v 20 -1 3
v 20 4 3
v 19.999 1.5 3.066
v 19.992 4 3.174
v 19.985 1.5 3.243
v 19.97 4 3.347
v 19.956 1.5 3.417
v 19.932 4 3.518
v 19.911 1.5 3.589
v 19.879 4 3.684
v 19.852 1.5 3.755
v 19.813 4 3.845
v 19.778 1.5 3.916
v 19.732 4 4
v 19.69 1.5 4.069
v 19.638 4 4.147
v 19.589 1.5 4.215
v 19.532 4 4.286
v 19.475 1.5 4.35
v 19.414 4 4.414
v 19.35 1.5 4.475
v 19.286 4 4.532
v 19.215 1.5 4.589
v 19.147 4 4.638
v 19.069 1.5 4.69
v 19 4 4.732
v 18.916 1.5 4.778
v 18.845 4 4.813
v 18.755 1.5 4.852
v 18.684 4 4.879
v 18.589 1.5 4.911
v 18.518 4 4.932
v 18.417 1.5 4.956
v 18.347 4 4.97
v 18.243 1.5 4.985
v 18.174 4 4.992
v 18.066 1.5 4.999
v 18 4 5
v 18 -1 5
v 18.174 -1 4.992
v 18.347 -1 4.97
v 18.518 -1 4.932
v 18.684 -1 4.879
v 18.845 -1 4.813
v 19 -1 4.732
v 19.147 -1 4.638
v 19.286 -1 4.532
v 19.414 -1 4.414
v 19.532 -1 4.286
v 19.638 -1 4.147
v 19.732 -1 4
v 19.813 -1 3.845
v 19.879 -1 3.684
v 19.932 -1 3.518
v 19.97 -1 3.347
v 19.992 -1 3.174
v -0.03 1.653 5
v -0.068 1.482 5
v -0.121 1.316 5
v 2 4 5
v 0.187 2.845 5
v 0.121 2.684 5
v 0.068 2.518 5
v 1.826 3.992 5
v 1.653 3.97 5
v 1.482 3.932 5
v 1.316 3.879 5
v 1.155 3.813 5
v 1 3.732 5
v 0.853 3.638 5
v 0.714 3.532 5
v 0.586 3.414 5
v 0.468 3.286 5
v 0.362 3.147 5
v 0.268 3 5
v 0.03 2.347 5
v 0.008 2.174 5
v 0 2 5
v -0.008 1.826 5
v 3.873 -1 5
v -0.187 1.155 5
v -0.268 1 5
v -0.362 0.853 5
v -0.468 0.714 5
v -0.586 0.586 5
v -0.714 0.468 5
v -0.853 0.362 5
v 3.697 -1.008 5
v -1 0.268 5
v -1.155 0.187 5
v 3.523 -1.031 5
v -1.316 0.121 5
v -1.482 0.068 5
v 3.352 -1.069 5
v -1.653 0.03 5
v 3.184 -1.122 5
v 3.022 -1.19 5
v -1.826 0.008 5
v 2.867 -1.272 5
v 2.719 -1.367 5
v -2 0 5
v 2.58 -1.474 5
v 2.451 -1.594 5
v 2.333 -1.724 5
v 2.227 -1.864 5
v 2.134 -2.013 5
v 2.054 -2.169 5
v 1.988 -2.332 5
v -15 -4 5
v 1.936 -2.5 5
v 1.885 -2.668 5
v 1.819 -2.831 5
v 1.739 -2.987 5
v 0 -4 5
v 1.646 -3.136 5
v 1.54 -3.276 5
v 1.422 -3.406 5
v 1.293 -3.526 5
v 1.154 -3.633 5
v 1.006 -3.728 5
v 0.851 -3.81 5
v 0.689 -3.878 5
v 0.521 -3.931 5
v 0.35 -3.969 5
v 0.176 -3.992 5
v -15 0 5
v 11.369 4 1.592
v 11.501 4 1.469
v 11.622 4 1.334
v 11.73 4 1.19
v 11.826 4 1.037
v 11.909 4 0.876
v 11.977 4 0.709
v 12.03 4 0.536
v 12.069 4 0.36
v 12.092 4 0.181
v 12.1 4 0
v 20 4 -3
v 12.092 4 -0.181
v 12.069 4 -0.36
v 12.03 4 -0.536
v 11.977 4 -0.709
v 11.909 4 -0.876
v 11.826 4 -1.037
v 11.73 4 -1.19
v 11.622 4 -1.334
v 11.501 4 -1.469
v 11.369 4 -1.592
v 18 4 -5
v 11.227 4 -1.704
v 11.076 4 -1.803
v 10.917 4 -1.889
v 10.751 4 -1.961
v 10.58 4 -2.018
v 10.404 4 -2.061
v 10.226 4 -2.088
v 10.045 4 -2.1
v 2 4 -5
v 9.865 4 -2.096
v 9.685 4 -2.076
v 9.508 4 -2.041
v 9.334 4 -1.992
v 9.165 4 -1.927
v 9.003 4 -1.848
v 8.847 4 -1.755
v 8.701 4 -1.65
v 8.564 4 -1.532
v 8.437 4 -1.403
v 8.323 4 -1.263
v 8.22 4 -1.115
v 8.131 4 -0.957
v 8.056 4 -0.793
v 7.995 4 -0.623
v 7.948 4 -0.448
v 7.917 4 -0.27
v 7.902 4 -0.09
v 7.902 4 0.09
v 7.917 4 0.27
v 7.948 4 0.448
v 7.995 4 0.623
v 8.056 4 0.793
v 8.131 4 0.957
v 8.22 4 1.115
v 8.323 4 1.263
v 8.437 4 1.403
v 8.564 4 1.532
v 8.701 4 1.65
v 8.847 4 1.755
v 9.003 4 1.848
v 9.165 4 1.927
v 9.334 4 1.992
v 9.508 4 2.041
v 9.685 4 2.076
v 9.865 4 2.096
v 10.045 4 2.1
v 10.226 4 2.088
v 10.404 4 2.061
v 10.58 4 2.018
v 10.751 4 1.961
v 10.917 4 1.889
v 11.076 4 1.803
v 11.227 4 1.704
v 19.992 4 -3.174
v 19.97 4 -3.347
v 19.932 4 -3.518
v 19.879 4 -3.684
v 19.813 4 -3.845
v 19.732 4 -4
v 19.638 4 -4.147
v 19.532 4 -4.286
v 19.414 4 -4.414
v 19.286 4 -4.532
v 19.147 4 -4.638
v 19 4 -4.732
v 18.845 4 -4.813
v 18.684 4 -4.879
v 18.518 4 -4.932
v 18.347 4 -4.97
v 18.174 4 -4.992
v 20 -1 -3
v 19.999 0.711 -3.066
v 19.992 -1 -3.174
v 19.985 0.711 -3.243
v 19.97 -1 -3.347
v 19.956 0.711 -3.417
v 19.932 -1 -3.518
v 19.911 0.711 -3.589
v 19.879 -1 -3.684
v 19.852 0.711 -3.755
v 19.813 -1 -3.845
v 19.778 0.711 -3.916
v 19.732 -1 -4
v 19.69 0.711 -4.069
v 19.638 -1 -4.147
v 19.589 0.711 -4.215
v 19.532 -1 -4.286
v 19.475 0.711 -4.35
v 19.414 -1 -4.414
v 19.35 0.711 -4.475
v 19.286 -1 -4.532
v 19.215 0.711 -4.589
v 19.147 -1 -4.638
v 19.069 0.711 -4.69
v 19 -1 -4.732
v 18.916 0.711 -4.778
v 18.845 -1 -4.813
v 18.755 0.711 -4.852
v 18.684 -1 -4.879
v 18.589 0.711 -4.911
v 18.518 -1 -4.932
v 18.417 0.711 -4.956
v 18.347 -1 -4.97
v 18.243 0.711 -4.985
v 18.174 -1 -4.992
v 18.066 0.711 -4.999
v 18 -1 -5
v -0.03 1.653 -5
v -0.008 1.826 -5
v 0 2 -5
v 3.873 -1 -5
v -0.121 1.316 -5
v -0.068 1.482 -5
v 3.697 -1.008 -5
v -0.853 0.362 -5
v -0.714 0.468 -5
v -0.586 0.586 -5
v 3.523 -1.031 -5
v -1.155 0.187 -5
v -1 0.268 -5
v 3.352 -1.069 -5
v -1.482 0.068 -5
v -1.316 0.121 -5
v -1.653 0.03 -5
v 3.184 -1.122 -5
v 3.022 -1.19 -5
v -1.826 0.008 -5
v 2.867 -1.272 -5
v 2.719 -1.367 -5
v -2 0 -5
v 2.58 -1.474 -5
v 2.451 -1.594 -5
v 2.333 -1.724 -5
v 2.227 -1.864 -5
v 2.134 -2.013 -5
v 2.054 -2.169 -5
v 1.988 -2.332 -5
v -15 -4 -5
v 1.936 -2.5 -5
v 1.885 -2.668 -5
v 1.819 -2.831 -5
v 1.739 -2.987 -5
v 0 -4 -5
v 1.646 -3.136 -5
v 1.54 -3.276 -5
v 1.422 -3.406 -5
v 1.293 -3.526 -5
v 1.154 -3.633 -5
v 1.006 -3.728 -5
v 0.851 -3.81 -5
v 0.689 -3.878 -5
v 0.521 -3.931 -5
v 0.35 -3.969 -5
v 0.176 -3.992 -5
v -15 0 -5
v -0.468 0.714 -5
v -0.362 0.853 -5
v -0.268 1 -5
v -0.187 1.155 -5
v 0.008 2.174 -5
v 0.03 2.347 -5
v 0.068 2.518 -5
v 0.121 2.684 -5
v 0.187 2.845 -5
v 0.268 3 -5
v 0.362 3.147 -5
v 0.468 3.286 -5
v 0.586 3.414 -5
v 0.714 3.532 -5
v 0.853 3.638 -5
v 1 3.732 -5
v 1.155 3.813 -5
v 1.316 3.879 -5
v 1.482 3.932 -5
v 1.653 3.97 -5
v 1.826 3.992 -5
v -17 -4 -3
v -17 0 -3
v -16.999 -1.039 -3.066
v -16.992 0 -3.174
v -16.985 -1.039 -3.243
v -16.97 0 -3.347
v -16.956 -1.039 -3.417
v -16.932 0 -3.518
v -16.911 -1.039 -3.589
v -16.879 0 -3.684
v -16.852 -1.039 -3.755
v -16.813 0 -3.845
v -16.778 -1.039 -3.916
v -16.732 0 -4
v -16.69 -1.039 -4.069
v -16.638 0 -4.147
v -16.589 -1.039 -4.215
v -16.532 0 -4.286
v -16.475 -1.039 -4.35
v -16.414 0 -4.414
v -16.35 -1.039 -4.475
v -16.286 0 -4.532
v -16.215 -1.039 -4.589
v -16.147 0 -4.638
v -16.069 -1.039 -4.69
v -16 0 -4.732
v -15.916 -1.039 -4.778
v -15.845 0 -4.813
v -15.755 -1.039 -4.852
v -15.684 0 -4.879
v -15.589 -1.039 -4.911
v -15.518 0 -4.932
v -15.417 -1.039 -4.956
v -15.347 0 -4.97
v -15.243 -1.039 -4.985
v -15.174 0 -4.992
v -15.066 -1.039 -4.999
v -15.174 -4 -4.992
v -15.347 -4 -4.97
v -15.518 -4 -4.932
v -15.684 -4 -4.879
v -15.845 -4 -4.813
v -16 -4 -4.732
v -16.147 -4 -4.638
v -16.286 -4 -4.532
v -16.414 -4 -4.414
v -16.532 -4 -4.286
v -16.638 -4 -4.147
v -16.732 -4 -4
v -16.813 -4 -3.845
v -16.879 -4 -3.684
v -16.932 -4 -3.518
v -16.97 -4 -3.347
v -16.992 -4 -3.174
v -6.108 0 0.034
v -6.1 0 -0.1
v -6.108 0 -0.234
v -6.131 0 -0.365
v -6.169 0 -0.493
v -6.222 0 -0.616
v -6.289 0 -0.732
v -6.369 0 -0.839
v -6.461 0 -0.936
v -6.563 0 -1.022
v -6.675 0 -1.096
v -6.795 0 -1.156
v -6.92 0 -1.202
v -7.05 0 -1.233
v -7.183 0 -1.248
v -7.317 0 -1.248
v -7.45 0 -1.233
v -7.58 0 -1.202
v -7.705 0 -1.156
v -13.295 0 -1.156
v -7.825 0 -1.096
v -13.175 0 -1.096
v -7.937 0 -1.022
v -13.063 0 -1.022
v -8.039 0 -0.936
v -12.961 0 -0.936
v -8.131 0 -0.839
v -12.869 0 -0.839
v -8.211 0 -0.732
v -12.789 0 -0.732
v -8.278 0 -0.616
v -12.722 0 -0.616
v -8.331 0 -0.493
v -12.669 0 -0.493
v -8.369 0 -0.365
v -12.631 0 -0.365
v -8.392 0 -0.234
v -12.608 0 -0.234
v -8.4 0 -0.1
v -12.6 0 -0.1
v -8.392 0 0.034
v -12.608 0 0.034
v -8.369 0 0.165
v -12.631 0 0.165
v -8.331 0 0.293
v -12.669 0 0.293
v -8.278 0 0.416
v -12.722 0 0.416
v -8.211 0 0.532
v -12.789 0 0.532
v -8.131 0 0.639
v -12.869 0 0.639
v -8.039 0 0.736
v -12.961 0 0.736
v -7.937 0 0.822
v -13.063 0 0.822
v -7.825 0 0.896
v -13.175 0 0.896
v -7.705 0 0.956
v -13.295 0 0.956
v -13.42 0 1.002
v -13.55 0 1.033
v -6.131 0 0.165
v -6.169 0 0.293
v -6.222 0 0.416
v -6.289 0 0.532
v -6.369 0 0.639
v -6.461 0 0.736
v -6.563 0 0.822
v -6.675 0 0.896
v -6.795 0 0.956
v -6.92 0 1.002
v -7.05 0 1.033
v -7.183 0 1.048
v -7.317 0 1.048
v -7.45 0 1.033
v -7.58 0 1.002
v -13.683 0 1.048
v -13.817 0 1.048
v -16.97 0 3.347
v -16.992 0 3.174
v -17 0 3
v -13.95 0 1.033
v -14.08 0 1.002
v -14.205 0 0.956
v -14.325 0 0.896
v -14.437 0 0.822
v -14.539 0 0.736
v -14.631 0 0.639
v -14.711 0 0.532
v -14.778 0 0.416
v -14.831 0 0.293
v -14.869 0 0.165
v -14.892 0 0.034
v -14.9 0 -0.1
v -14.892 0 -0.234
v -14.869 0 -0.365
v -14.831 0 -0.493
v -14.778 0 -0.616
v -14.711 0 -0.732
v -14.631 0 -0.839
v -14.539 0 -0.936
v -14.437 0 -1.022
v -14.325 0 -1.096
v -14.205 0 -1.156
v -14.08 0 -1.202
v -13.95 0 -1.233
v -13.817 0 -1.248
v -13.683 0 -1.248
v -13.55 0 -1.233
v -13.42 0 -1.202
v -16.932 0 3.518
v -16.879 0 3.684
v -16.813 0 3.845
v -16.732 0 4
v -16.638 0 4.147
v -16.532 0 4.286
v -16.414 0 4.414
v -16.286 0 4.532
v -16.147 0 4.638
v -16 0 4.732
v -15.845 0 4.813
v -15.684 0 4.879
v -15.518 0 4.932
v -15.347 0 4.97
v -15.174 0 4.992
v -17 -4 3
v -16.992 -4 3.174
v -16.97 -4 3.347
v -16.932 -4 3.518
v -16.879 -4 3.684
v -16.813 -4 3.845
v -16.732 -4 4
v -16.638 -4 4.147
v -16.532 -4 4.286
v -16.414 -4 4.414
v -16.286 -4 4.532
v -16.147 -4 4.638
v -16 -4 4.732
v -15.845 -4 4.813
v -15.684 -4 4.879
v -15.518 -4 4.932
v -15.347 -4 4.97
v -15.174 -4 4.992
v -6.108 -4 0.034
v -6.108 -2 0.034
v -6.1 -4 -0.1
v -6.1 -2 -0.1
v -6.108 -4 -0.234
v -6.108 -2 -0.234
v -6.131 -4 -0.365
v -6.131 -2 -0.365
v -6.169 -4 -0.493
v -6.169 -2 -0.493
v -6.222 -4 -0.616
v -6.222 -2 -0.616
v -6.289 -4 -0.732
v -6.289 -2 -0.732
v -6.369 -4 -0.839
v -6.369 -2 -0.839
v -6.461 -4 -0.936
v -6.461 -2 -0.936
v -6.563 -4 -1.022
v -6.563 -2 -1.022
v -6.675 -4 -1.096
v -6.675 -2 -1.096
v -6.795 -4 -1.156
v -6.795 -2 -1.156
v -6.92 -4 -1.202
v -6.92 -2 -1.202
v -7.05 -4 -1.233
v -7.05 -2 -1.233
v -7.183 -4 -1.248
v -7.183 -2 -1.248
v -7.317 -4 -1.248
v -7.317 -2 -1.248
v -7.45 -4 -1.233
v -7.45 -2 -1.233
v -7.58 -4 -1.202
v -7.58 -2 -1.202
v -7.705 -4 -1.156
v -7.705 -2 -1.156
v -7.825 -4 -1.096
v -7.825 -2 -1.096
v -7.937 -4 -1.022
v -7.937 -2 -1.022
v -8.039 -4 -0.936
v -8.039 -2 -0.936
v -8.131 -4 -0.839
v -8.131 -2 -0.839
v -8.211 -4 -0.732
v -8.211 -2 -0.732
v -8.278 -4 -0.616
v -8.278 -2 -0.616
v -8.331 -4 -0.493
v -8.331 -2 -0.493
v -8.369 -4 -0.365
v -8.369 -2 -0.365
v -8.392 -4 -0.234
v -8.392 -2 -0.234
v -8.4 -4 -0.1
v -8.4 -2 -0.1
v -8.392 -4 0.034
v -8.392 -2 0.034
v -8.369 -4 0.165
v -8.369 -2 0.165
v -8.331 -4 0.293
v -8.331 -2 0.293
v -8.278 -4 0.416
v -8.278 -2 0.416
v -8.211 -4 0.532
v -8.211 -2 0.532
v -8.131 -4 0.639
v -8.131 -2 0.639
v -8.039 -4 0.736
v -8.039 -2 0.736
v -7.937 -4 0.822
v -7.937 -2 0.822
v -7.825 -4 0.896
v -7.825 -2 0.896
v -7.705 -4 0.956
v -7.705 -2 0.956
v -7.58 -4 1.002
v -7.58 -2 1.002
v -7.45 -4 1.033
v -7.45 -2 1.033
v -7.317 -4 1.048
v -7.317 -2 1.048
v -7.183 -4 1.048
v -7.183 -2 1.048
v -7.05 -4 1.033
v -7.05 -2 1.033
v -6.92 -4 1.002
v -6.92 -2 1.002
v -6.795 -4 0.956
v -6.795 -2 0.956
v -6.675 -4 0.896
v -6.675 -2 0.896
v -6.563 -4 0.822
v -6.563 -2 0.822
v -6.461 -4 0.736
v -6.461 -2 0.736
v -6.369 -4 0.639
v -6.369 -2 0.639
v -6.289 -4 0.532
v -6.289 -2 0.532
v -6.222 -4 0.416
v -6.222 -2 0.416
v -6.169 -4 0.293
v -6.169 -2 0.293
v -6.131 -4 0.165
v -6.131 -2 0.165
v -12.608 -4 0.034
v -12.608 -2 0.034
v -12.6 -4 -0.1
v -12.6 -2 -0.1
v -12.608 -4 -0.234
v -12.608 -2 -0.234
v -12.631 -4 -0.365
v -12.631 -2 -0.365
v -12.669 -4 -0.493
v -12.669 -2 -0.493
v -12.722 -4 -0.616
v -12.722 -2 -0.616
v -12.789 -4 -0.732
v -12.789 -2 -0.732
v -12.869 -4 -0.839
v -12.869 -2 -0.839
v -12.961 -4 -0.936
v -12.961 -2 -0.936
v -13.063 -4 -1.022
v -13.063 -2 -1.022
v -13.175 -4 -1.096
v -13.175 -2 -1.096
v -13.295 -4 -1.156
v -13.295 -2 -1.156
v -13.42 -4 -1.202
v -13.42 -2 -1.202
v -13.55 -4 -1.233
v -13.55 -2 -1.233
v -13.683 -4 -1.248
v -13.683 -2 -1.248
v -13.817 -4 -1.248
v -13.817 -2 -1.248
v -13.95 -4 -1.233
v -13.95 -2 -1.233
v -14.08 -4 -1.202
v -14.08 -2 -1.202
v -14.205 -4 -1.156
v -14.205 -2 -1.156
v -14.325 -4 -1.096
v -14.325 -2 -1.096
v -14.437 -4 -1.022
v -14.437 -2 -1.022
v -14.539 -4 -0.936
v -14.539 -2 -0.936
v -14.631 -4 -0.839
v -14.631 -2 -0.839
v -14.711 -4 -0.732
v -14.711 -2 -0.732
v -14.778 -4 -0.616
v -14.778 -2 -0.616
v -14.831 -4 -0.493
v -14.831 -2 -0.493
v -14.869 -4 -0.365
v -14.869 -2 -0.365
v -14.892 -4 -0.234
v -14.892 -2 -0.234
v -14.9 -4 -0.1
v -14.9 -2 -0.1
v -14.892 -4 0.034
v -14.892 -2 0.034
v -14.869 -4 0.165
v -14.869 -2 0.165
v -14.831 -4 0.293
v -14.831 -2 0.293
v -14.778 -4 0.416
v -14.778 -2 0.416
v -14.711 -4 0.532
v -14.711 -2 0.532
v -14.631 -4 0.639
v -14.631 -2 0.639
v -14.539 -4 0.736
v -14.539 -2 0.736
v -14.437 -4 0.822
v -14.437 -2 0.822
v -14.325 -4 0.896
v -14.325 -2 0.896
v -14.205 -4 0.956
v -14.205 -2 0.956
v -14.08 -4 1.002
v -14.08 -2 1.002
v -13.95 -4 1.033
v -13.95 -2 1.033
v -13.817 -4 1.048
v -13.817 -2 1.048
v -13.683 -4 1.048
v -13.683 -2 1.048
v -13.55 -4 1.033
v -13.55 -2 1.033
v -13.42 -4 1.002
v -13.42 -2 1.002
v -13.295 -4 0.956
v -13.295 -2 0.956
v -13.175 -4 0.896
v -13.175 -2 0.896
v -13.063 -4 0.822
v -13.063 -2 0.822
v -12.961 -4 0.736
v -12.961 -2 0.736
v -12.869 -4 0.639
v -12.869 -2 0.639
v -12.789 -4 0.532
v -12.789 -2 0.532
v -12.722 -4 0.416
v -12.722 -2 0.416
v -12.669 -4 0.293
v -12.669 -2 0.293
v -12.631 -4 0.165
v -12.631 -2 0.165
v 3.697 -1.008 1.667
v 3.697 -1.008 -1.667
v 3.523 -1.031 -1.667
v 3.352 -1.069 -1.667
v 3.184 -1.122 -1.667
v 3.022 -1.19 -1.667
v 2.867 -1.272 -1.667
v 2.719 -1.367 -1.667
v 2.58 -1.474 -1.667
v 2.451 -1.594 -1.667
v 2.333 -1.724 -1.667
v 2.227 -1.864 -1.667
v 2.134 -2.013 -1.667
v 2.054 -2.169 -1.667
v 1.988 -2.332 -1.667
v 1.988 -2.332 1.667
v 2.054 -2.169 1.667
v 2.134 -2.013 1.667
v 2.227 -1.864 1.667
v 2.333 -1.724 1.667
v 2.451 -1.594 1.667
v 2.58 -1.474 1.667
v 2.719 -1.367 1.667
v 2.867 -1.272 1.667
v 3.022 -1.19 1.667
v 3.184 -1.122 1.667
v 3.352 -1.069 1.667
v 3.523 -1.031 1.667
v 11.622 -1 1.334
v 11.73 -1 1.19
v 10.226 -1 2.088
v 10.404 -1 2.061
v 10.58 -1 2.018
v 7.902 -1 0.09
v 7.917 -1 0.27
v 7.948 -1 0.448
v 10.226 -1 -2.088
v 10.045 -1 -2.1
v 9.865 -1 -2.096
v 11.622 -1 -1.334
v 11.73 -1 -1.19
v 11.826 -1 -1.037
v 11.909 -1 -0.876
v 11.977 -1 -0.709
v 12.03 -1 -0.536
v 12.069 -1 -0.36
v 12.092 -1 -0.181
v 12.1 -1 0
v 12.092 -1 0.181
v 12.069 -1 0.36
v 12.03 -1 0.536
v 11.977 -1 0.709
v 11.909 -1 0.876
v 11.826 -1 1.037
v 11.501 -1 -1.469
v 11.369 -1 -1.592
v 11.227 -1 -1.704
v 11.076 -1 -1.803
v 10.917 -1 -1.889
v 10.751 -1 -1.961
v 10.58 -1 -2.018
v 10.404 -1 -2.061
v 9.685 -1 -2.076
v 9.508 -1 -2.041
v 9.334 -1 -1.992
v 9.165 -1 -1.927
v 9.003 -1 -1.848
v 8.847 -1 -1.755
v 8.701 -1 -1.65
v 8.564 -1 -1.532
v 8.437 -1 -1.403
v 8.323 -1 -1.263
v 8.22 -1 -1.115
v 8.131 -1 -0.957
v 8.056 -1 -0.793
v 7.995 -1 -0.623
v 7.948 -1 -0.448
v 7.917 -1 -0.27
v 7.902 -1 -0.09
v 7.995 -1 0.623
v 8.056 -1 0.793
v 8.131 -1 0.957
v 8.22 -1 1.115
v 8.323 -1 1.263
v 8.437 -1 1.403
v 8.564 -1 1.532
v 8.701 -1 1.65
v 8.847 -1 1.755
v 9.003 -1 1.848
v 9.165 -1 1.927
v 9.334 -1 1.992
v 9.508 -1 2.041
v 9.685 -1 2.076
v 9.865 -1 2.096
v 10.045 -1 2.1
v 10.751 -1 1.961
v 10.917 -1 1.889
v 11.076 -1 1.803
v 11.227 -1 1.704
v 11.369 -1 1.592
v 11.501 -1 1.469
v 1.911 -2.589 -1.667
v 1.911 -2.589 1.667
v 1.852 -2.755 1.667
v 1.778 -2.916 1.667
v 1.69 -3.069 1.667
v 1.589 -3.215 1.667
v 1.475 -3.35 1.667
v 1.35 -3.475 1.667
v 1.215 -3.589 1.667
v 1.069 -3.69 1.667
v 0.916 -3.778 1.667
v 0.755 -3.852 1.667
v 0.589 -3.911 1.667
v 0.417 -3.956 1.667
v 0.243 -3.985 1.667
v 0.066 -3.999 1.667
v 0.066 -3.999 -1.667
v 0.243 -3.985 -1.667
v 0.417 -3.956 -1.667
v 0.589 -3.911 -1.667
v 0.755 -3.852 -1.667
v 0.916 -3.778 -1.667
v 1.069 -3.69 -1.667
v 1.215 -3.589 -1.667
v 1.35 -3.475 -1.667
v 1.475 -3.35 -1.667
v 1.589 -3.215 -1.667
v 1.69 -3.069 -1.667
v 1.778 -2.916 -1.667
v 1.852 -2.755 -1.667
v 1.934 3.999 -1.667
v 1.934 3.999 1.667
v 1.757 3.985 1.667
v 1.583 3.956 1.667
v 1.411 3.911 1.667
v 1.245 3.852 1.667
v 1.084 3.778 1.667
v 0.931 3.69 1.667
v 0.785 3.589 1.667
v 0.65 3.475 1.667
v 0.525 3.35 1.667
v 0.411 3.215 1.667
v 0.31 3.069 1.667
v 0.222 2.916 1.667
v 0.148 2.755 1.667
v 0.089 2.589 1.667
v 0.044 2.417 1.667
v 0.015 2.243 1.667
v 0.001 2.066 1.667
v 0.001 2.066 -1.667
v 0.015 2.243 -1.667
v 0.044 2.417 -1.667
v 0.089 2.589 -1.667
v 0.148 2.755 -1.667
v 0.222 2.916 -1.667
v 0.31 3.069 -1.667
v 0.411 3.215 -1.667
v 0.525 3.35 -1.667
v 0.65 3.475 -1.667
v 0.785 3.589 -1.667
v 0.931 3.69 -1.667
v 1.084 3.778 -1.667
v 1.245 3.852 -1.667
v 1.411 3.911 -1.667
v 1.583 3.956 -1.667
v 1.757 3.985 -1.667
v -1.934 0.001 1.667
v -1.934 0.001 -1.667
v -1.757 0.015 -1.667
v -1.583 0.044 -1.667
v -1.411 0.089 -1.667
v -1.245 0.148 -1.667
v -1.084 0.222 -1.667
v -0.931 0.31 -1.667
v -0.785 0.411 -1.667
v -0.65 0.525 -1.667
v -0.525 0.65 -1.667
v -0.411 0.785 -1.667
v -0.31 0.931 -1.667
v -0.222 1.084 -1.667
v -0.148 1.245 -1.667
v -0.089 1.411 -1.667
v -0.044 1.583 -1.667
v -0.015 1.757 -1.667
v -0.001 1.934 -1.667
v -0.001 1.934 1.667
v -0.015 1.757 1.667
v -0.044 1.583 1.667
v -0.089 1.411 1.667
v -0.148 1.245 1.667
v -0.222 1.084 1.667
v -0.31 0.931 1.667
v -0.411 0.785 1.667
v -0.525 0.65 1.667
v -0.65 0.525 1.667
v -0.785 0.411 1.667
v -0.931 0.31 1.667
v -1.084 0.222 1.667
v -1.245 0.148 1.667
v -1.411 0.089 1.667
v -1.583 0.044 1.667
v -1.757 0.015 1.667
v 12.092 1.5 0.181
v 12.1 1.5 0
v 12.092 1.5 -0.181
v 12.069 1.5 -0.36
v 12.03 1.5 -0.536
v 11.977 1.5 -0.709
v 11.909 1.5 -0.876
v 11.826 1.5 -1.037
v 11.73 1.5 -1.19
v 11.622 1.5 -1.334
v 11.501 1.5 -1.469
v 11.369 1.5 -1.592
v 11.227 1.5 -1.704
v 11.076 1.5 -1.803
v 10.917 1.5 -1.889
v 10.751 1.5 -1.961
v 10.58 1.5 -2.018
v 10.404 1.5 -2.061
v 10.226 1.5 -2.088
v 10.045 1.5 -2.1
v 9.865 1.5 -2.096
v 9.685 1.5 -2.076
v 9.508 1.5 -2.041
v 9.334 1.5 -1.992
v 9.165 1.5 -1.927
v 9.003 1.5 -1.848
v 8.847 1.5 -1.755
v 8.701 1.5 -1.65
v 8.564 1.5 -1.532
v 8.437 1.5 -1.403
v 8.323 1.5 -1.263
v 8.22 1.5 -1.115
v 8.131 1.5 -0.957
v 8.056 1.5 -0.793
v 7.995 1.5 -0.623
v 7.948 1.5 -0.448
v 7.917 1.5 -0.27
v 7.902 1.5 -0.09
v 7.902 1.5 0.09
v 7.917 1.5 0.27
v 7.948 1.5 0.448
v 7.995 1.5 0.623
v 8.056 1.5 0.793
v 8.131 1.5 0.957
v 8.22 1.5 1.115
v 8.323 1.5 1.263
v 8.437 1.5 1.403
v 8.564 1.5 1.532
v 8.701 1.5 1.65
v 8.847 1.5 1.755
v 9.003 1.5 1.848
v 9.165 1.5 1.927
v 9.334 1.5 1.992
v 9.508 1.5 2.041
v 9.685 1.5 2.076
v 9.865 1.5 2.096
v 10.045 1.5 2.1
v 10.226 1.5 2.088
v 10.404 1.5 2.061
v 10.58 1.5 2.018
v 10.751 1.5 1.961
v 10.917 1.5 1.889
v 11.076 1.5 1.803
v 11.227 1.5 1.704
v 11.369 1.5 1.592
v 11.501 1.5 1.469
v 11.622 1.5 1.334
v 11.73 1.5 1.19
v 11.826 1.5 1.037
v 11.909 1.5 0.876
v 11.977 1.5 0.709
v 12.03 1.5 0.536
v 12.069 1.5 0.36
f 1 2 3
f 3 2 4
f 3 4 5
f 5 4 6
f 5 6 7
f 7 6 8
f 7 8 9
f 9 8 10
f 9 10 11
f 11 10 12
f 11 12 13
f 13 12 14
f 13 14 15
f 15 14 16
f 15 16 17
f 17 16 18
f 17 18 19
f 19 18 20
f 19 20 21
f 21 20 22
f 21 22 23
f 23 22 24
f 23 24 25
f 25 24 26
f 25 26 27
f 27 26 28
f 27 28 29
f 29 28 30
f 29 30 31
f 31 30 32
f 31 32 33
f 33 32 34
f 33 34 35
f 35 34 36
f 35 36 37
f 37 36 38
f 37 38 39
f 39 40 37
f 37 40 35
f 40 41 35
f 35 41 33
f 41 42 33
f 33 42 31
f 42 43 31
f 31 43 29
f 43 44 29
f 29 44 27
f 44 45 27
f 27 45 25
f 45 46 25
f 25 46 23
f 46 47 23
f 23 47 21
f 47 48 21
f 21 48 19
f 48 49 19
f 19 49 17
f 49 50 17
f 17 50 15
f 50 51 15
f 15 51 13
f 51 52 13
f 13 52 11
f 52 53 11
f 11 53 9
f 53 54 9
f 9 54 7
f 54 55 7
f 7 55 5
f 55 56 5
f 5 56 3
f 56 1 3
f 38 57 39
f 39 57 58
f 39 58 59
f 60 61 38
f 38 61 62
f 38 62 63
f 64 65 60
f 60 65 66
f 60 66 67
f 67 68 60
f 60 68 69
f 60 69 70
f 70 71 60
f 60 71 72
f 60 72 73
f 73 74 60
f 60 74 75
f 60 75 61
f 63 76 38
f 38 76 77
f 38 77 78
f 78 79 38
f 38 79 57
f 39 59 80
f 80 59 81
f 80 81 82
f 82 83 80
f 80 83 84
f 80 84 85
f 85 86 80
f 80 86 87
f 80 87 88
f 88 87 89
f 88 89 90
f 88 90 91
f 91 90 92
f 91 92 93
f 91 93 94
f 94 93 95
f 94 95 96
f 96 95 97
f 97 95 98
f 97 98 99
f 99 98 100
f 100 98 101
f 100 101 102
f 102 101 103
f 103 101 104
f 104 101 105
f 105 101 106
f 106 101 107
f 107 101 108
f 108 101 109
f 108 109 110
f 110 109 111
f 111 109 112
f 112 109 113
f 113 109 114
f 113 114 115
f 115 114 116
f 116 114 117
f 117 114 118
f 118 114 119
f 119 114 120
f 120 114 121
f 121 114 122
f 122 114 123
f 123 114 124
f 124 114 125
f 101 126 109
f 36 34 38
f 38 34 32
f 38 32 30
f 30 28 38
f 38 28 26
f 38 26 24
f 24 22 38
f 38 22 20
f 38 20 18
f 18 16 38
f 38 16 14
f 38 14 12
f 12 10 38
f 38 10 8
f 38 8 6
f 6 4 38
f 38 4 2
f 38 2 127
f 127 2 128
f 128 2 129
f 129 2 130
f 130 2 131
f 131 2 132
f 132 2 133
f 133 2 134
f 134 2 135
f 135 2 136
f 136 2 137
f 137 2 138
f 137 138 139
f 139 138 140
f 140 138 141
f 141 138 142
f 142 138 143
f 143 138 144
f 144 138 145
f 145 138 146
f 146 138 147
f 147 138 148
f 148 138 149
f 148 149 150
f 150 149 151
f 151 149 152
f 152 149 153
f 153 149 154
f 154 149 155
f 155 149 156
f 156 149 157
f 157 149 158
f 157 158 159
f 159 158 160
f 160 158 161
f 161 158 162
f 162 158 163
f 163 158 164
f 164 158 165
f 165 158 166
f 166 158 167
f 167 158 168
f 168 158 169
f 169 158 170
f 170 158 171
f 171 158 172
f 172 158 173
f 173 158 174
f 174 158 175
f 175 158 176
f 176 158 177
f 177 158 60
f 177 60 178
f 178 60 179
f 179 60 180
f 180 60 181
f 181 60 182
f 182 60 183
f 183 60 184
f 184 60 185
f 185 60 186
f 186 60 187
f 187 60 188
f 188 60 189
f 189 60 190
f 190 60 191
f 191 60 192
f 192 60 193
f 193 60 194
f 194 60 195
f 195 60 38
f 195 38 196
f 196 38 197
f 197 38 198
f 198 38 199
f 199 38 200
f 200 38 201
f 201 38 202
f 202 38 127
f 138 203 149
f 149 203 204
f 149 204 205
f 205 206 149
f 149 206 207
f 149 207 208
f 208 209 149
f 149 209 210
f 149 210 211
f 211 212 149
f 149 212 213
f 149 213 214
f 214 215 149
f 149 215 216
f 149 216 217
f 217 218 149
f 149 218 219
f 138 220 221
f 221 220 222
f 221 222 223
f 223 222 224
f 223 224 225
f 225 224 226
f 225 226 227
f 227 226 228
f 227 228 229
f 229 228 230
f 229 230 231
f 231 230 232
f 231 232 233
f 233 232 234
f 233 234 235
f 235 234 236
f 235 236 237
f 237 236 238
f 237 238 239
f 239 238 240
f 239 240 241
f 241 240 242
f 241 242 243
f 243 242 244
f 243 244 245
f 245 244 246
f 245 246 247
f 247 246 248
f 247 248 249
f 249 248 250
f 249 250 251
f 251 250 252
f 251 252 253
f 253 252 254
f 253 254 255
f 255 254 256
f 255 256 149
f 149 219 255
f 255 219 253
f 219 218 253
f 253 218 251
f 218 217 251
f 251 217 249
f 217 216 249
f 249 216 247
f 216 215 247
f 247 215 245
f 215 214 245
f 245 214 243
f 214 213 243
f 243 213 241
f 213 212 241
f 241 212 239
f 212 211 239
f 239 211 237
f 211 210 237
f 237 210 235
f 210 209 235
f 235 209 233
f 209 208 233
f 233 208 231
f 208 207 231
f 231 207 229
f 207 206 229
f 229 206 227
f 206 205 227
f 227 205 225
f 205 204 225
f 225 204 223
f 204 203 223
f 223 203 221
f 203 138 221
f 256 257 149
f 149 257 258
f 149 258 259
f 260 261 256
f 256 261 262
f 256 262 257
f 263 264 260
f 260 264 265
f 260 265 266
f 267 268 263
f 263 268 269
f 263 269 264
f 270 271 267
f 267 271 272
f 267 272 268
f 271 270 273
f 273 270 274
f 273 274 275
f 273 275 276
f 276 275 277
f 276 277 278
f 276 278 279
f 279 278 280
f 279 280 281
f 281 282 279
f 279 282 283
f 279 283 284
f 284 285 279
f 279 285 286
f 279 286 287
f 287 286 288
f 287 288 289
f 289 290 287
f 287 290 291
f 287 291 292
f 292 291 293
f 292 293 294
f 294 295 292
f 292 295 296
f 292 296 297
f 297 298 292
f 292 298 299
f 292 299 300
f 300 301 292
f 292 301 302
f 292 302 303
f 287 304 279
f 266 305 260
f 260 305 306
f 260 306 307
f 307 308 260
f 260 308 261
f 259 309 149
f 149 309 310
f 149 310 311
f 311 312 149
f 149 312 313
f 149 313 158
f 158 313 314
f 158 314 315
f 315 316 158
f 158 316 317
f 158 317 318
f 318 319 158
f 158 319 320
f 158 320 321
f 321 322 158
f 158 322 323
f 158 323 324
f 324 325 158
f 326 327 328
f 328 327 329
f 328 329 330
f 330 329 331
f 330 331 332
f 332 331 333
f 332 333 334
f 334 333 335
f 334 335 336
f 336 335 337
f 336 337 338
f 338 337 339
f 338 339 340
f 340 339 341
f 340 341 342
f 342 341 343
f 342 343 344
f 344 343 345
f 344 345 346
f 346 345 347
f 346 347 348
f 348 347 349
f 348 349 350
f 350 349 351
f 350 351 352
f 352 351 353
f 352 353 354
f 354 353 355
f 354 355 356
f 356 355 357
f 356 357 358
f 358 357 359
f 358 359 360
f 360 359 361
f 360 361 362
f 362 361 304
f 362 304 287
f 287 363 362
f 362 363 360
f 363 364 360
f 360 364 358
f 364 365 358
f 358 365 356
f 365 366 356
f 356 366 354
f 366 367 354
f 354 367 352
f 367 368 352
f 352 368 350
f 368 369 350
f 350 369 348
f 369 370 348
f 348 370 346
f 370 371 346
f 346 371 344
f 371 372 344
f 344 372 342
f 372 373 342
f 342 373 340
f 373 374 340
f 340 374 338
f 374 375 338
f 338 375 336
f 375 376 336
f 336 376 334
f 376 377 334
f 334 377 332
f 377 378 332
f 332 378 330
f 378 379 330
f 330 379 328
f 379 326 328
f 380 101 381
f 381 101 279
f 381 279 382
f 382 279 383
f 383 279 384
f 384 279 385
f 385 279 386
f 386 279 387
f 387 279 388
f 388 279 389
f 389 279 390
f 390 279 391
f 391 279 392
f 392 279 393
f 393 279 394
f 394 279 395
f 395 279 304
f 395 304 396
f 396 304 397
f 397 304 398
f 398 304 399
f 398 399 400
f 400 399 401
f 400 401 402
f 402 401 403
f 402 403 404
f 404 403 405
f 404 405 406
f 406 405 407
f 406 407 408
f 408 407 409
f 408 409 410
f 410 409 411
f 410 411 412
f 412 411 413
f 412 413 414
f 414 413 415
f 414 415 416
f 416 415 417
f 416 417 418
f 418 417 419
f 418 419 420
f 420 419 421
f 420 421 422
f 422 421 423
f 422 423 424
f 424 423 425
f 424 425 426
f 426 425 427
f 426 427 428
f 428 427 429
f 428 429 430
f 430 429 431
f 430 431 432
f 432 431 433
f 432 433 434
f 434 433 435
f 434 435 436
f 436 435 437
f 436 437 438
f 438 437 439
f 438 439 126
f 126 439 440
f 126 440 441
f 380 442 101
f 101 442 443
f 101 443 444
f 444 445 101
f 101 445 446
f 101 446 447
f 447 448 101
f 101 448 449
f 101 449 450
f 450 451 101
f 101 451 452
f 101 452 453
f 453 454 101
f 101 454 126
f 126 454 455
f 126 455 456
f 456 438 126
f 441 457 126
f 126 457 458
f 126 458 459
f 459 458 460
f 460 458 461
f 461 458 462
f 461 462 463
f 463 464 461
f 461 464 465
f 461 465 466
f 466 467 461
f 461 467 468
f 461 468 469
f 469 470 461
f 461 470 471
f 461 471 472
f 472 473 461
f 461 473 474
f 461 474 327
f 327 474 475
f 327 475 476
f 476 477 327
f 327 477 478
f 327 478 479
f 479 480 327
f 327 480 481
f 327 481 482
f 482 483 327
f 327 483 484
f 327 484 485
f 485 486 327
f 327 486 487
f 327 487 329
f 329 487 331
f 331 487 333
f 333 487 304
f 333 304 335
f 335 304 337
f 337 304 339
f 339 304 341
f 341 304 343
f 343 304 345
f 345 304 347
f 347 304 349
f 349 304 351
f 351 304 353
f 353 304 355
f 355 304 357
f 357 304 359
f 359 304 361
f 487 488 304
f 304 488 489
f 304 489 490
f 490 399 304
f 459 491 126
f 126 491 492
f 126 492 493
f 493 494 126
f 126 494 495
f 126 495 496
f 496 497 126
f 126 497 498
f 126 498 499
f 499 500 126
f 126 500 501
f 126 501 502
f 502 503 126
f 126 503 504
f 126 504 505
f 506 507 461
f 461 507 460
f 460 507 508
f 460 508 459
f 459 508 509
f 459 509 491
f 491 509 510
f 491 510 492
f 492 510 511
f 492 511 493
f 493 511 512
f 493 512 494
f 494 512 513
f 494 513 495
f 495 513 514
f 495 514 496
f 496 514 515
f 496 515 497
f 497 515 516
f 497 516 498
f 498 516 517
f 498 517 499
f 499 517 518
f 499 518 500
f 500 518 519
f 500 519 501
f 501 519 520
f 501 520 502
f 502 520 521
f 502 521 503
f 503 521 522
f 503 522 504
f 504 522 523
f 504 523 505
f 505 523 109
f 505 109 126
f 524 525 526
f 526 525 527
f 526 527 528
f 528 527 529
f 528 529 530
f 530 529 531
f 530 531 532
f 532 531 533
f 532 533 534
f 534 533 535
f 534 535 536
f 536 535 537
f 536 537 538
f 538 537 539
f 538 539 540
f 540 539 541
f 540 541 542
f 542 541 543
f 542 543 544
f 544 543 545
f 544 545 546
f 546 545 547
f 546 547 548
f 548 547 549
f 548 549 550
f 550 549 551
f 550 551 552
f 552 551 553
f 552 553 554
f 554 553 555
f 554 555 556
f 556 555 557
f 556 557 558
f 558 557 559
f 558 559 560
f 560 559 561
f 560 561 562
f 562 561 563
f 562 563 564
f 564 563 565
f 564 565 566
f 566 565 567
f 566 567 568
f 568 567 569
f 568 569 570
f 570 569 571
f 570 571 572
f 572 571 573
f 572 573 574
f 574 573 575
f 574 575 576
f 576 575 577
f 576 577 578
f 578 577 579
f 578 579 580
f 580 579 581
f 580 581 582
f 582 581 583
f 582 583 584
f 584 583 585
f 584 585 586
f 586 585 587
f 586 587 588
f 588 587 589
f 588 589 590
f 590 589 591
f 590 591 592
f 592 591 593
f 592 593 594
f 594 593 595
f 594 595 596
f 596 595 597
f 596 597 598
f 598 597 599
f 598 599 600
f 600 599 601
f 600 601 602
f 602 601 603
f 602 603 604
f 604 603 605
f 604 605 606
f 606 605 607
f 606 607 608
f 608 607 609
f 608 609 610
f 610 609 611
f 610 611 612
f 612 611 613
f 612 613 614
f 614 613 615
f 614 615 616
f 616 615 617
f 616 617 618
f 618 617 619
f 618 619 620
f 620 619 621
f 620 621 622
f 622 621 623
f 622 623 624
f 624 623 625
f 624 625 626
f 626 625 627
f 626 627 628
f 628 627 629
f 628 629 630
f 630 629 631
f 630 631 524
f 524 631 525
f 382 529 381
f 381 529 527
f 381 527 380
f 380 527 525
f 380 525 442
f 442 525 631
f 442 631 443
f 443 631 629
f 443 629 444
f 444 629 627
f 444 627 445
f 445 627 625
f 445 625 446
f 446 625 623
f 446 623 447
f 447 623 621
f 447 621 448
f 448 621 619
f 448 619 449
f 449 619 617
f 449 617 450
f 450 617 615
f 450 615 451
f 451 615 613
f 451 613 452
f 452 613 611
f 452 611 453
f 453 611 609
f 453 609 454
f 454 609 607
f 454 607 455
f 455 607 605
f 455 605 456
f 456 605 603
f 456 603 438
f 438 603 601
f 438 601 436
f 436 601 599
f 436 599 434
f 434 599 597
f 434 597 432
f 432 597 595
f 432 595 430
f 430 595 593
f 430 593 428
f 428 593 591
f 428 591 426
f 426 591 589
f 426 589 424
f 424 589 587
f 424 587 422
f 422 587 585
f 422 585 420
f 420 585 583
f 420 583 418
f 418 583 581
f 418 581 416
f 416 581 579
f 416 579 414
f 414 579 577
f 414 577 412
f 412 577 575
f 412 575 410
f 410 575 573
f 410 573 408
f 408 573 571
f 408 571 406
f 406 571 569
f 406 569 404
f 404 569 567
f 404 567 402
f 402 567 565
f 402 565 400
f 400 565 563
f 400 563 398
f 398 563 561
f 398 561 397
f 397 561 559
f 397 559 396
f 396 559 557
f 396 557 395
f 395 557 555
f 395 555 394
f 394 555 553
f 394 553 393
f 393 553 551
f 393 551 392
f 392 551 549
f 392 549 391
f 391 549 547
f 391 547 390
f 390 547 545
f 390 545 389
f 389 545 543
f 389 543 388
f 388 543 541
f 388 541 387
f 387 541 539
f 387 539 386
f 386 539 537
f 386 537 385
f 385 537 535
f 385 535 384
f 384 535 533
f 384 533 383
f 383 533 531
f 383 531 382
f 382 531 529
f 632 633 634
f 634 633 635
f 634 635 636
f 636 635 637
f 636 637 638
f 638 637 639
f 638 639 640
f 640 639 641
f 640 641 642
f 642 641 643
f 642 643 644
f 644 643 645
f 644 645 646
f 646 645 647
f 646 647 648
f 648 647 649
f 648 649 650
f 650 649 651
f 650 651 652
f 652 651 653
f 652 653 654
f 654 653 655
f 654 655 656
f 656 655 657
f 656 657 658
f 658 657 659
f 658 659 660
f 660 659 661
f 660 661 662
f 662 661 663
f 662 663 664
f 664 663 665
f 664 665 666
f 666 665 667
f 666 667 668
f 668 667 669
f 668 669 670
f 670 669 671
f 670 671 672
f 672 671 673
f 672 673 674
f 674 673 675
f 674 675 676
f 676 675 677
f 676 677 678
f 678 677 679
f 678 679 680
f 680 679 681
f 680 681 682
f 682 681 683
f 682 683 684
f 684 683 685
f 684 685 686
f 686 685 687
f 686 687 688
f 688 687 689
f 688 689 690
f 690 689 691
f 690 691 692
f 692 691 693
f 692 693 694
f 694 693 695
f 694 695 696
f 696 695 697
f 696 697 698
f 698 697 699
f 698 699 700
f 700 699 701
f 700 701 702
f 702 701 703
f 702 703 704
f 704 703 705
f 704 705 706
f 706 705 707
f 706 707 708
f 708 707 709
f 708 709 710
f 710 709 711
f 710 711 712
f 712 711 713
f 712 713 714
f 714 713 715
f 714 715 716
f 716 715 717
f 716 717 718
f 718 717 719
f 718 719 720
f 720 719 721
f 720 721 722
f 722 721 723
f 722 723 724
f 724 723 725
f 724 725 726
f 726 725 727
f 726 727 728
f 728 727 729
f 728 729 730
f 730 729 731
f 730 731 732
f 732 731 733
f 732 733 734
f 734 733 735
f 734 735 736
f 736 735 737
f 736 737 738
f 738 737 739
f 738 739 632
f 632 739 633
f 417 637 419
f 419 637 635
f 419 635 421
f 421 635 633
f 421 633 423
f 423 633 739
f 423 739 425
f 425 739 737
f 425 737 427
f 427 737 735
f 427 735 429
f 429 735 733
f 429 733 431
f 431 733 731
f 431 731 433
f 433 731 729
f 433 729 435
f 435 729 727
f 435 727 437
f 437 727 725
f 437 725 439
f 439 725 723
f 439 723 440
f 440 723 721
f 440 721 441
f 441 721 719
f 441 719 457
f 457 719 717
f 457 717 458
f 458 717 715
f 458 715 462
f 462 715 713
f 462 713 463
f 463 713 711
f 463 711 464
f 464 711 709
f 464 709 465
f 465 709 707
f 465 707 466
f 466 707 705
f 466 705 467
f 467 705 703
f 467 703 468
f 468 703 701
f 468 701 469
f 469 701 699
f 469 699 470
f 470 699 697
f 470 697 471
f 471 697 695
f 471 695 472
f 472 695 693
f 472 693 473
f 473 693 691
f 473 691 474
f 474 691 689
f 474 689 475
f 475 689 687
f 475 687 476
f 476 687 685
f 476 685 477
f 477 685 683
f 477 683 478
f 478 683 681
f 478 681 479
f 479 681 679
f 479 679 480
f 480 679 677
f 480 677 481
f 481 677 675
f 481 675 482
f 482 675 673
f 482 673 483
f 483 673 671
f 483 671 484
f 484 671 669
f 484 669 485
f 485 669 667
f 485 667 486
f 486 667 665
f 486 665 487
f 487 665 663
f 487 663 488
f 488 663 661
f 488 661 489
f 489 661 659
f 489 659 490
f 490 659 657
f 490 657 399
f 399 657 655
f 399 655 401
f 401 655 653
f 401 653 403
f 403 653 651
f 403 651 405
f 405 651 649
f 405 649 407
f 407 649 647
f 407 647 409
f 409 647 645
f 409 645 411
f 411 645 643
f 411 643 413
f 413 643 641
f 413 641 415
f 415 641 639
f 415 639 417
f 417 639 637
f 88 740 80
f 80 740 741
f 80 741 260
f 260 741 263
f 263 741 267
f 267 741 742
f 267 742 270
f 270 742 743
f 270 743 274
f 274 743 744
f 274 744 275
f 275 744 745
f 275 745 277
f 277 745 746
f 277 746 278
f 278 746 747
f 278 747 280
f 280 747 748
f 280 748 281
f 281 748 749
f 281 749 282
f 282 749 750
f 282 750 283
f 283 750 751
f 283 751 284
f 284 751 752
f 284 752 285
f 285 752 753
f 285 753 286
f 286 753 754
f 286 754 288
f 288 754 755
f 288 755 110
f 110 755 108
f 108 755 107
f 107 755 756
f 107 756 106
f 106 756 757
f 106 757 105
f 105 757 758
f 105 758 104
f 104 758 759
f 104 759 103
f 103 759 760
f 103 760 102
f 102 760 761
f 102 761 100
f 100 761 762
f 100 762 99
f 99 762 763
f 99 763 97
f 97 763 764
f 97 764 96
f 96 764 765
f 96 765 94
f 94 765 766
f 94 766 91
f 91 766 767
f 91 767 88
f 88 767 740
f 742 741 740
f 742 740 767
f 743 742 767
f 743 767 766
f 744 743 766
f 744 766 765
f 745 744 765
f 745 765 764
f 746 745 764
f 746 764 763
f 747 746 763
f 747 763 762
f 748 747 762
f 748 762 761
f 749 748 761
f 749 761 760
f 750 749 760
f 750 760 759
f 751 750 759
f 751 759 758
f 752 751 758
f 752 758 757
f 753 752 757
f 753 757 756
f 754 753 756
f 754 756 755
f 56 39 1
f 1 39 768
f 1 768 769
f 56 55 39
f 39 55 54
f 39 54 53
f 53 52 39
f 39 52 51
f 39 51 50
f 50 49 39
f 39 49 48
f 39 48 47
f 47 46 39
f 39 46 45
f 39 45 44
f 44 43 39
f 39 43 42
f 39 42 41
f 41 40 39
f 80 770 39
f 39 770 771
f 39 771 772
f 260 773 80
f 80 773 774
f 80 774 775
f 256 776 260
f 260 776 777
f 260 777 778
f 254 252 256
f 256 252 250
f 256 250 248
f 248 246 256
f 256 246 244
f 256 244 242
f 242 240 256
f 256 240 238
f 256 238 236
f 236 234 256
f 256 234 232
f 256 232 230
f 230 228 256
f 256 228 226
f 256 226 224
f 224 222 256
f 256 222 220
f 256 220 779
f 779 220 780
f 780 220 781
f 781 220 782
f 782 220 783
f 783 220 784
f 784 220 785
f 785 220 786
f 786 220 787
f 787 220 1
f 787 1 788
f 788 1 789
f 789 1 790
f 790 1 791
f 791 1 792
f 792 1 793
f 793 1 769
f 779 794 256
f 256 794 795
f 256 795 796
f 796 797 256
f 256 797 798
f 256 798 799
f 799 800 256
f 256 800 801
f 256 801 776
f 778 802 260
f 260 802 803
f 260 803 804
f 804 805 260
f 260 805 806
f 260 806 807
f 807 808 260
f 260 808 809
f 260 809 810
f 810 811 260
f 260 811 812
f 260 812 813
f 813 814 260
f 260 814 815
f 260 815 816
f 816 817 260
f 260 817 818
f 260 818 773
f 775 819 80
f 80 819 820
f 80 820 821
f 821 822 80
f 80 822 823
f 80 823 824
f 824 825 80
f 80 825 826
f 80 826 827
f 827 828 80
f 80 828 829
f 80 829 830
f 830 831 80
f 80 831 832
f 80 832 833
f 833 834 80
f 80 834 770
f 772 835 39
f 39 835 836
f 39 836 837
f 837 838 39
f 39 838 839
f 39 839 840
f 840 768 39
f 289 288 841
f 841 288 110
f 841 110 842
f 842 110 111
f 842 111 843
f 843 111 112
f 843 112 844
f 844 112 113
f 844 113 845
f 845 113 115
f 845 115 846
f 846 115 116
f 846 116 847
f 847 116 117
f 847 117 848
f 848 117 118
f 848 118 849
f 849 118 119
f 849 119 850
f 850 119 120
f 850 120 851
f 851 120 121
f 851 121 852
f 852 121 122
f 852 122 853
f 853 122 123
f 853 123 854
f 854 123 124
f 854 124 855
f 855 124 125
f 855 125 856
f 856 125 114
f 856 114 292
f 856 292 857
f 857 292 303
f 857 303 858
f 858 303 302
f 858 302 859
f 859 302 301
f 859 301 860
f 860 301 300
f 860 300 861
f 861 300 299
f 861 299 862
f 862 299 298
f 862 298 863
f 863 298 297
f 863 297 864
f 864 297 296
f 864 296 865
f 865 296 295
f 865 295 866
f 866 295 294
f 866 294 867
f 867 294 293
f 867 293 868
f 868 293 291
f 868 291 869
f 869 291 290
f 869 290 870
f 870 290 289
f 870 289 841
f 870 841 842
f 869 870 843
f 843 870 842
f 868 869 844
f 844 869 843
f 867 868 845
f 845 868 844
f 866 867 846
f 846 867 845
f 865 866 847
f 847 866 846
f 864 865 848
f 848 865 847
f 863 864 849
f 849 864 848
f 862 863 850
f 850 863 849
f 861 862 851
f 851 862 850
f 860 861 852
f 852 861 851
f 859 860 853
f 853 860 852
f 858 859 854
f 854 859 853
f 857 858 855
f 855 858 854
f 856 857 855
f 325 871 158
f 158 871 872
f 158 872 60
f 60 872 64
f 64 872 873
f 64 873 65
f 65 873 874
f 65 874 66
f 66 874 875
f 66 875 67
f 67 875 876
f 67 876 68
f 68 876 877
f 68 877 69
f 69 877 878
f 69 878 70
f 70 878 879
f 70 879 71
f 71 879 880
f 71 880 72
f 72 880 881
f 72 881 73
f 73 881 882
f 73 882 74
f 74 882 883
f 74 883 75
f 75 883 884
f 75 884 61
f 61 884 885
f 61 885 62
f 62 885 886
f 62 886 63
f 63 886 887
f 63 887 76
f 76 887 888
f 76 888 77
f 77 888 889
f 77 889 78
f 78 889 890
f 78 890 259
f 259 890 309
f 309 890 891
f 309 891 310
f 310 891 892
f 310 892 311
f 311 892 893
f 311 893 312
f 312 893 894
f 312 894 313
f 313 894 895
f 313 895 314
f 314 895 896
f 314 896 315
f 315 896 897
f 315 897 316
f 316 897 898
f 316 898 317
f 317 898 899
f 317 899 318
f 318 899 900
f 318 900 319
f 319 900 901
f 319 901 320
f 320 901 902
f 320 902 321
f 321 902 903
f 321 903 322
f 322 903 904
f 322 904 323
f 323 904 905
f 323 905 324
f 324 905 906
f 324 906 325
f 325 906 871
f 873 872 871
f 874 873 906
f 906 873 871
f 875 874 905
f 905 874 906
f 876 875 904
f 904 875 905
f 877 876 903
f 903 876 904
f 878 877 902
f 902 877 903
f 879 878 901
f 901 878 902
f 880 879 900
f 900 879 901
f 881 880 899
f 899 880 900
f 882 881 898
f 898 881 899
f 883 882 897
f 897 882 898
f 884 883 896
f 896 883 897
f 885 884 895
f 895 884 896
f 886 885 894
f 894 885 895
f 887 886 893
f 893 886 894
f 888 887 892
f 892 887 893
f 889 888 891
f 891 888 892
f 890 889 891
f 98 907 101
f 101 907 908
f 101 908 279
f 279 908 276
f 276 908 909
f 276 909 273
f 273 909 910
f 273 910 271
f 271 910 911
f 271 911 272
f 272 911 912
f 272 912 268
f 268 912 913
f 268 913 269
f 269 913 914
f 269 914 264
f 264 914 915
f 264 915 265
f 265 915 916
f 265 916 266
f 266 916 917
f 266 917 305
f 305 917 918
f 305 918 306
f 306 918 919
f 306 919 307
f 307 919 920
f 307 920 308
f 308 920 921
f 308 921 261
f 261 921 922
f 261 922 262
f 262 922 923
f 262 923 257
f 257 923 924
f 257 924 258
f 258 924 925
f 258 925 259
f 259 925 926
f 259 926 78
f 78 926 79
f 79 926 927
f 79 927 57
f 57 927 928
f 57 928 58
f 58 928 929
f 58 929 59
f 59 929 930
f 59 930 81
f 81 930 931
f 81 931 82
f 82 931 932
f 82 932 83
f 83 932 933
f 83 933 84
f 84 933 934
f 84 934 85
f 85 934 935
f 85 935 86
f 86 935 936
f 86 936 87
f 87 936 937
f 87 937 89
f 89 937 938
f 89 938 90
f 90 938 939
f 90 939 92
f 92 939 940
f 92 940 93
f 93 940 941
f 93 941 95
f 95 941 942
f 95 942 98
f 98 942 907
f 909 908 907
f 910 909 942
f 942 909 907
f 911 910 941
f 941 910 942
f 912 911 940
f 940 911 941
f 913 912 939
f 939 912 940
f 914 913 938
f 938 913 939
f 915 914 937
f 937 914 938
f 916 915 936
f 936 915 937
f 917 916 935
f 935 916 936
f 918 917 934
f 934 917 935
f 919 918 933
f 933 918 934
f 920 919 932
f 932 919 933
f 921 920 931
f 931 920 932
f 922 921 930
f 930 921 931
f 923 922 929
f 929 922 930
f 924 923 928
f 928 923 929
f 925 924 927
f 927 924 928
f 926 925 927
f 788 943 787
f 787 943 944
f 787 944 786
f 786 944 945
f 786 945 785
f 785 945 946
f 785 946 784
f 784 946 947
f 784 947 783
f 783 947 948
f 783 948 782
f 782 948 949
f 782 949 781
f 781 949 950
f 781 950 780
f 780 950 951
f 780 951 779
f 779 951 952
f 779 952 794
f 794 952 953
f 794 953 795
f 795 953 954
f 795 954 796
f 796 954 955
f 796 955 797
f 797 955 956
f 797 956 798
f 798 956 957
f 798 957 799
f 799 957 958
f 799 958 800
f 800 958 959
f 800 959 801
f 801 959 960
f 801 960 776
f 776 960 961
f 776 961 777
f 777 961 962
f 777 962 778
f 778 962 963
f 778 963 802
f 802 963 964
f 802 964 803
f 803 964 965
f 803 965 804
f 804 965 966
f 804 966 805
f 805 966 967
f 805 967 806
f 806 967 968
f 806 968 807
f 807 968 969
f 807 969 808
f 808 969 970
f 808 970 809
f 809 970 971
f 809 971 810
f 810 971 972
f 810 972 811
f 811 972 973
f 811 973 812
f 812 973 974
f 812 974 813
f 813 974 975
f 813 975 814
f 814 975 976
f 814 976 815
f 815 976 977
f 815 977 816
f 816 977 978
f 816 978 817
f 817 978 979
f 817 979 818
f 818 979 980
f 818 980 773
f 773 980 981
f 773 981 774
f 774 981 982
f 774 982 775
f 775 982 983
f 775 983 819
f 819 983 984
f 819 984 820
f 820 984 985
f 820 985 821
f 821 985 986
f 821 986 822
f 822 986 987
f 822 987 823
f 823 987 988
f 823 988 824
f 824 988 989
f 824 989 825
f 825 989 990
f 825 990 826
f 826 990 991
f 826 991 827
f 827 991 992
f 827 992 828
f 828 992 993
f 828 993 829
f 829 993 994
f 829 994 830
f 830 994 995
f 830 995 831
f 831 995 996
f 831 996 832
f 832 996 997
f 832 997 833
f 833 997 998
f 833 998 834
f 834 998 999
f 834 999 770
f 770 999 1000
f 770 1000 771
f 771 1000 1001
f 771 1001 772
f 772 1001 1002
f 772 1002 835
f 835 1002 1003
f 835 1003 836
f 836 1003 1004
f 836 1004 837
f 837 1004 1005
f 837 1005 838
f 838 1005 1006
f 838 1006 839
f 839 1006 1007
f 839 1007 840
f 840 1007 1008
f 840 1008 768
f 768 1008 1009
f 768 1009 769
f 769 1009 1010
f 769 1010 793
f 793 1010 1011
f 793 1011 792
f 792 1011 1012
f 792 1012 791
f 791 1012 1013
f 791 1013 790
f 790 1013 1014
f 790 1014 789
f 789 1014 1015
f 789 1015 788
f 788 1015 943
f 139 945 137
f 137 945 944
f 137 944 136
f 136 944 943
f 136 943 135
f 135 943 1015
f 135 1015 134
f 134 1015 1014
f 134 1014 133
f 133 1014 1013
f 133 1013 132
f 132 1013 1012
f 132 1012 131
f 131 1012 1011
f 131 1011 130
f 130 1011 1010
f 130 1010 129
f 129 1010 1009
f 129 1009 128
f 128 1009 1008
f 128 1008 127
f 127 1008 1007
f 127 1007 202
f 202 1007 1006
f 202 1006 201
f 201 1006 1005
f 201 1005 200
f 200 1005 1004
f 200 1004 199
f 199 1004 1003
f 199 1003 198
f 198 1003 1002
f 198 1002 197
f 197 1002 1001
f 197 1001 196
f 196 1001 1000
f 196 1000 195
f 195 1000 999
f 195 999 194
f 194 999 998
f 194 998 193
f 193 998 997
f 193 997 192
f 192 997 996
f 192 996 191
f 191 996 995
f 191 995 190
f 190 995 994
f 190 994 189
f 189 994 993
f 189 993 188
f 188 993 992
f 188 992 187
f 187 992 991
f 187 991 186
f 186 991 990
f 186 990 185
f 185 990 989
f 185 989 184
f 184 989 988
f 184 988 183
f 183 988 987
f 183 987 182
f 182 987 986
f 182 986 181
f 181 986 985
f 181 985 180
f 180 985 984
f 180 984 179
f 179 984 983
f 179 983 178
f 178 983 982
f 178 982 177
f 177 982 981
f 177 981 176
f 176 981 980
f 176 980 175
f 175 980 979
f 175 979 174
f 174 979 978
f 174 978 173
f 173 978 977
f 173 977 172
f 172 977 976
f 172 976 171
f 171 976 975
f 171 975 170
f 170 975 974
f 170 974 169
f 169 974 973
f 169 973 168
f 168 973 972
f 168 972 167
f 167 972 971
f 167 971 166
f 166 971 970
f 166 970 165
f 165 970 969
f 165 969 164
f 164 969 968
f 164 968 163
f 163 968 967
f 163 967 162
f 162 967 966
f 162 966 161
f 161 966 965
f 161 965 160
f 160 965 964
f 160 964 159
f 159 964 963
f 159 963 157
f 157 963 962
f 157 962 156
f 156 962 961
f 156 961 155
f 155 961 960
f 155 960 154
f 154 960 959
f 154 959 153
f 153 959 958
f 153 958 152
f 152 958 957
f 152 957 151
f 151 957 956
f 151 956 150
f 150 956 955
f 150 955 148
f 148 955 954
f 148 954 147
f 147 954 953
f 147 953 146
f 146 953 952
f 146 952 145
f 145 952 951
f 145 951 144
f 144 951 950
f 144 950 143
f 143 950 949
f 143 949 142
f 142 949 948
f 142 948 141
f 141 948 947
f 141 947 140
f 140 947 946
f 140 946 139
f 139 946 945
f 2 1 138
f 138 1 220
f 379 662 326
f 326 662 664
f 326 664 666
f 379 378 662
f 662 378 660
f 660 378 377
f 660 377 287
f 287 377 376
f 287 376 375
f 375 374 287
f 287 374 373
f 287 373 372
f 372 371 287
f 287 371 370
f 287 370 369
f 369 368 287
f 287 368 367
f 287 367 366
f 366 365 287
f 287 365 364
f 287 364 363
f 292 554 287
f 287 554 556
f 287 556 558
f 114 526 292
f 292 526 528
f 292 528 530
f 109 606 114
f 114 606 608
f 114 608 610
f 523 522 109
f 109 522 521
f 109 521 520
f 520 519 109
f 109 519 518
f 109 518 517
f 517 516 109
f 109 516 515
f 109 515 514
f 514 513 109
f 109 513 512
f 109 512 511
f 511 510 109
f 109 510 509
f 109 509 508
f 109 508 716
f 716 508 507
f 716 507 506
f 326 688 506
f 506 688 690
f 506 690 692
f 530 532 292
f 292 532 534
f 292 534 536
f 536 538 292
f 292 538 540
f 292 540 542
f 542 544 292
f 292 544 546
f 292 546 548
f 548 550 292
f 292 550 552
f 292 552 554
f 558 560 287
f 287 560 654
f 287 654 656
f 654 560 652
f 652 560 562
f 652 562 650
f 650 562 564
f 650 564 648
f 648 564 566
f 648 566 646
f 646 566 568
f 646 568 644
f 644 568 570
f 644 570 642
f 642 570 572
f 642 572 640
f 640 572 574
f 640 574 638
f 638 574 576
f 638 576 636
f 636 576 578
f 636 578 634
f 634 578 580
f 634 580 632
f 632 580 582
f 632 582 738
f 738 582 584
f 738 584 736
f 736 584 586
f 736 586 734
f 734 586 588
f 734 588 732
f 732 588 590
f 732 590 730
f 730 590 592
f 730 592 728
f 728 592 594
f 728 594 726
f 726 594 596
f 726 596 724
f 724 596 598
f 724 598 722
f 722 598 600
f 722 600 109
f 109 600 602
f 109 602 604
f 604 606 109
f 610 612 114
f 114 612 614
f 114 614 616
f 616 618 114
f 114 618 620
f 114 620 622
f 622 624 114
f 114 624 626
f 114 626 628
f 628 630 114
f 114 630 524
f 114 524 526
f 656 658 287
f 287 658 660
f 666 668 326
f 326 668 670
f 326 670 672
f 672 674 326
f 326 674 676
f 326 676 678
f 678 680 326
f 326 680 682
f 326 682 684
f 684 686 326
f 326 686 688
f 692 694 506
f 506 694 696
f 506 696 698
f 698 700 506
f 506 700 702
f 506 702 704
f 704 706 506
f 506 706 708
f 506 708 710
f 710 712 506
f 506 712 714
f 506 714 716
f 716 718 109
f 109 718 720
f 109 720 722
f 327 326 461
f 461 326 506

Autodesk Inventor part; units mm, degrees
ref_plane "YZ Plane" through (0, 0, 0) normal (1, 0, 0) x (0, 1, 0)
ref_plane "XZ Plane" through (0, 0, 0) normal (0, 1, 0) x (-1, 0, 0)
ref_plane "XY Plane" through (0, 0, 0) normal (0, 0, 1) x (1, 0, 0)
sketch "Sketch1" plane through (0, 0, 0) normal (0, 0, 1) x (1, 0, 0)
  line L0 (-17, 0) -> (0, 0)
  line L1 (-17, -4) -> (-17, 0)
  line L2 (0, 4) -> (20, 4)
  line L3 (20, 4) -> (20, -1)
  line L4 (20, -1) -> (2, -1)
  line L5 (0, 0) -> (0, 4)
  line L6 (0, -4) -> (0, 4) construction
  line L7 (-17, -4) -> (2, -4)
  line L8 (2, -4) -> (2, -1)
  line L9 (0, -4) -> (0, 4) construction
  line L10 (2, -4) -> (2, 4) construction
  point P0 (2, 0)
  dimension "d0" = 5
  dimension "d2" = 4
  dimension "d3" = 20
  dimension "d13" = 19
  dimension "d14" = 2
  dimension "d15" = 4
extrude "Extrusion1" add sketch "Sketch1" along normal mid plane 10
sketch "Sketch2" plane through (0, 4, 5) normal (0, 1, 0) x (1, 0, 0)
  circle A0 centre (10, 5) radius 2.1
  line L0 (20, 0) -> (20, 10) projected
  point P0 (0, 5)
  point P1 (20, 5)
  dimension "d7" = 4.2
  dimension "d8" = 10
extrude "Extrusion2" cut sketch "Sketch2" against normal through all
fillet "Fillet1" radius 2 4 edges at (0, 0, 0) (0, 4, 0) (2, -4, 0) (2, -1, 0)
sketch "Sketch3" plane through (-17, 0, 5) normal (0, 1, 0) x (1, 0, 0)
  circle A0 centre (9.75, 5.1) radius 1.15
  circle A1 centre (3.25, 5.1) radius 1.15
  line L0 (15, 0) -> (0, 0) projected
  line L1 (0, 10) -> (0, 0) projected
  point P0 (17, 5)
  dimension "d17" = 2.3
  dimension "d18" = 6.5
  dimension "d19" = 5.1
  dimension "d20" = 3.25
extrude "Extrusion3" cut sketch "Sketch3" against normal through all
fillet "Fillet2" radius 2 4 edges at (-17, -2, 5) (-17, -2, -5) (20, 1.5, -5) (20, 1.5, 5)
properties part number "y-endstop-bracket"
